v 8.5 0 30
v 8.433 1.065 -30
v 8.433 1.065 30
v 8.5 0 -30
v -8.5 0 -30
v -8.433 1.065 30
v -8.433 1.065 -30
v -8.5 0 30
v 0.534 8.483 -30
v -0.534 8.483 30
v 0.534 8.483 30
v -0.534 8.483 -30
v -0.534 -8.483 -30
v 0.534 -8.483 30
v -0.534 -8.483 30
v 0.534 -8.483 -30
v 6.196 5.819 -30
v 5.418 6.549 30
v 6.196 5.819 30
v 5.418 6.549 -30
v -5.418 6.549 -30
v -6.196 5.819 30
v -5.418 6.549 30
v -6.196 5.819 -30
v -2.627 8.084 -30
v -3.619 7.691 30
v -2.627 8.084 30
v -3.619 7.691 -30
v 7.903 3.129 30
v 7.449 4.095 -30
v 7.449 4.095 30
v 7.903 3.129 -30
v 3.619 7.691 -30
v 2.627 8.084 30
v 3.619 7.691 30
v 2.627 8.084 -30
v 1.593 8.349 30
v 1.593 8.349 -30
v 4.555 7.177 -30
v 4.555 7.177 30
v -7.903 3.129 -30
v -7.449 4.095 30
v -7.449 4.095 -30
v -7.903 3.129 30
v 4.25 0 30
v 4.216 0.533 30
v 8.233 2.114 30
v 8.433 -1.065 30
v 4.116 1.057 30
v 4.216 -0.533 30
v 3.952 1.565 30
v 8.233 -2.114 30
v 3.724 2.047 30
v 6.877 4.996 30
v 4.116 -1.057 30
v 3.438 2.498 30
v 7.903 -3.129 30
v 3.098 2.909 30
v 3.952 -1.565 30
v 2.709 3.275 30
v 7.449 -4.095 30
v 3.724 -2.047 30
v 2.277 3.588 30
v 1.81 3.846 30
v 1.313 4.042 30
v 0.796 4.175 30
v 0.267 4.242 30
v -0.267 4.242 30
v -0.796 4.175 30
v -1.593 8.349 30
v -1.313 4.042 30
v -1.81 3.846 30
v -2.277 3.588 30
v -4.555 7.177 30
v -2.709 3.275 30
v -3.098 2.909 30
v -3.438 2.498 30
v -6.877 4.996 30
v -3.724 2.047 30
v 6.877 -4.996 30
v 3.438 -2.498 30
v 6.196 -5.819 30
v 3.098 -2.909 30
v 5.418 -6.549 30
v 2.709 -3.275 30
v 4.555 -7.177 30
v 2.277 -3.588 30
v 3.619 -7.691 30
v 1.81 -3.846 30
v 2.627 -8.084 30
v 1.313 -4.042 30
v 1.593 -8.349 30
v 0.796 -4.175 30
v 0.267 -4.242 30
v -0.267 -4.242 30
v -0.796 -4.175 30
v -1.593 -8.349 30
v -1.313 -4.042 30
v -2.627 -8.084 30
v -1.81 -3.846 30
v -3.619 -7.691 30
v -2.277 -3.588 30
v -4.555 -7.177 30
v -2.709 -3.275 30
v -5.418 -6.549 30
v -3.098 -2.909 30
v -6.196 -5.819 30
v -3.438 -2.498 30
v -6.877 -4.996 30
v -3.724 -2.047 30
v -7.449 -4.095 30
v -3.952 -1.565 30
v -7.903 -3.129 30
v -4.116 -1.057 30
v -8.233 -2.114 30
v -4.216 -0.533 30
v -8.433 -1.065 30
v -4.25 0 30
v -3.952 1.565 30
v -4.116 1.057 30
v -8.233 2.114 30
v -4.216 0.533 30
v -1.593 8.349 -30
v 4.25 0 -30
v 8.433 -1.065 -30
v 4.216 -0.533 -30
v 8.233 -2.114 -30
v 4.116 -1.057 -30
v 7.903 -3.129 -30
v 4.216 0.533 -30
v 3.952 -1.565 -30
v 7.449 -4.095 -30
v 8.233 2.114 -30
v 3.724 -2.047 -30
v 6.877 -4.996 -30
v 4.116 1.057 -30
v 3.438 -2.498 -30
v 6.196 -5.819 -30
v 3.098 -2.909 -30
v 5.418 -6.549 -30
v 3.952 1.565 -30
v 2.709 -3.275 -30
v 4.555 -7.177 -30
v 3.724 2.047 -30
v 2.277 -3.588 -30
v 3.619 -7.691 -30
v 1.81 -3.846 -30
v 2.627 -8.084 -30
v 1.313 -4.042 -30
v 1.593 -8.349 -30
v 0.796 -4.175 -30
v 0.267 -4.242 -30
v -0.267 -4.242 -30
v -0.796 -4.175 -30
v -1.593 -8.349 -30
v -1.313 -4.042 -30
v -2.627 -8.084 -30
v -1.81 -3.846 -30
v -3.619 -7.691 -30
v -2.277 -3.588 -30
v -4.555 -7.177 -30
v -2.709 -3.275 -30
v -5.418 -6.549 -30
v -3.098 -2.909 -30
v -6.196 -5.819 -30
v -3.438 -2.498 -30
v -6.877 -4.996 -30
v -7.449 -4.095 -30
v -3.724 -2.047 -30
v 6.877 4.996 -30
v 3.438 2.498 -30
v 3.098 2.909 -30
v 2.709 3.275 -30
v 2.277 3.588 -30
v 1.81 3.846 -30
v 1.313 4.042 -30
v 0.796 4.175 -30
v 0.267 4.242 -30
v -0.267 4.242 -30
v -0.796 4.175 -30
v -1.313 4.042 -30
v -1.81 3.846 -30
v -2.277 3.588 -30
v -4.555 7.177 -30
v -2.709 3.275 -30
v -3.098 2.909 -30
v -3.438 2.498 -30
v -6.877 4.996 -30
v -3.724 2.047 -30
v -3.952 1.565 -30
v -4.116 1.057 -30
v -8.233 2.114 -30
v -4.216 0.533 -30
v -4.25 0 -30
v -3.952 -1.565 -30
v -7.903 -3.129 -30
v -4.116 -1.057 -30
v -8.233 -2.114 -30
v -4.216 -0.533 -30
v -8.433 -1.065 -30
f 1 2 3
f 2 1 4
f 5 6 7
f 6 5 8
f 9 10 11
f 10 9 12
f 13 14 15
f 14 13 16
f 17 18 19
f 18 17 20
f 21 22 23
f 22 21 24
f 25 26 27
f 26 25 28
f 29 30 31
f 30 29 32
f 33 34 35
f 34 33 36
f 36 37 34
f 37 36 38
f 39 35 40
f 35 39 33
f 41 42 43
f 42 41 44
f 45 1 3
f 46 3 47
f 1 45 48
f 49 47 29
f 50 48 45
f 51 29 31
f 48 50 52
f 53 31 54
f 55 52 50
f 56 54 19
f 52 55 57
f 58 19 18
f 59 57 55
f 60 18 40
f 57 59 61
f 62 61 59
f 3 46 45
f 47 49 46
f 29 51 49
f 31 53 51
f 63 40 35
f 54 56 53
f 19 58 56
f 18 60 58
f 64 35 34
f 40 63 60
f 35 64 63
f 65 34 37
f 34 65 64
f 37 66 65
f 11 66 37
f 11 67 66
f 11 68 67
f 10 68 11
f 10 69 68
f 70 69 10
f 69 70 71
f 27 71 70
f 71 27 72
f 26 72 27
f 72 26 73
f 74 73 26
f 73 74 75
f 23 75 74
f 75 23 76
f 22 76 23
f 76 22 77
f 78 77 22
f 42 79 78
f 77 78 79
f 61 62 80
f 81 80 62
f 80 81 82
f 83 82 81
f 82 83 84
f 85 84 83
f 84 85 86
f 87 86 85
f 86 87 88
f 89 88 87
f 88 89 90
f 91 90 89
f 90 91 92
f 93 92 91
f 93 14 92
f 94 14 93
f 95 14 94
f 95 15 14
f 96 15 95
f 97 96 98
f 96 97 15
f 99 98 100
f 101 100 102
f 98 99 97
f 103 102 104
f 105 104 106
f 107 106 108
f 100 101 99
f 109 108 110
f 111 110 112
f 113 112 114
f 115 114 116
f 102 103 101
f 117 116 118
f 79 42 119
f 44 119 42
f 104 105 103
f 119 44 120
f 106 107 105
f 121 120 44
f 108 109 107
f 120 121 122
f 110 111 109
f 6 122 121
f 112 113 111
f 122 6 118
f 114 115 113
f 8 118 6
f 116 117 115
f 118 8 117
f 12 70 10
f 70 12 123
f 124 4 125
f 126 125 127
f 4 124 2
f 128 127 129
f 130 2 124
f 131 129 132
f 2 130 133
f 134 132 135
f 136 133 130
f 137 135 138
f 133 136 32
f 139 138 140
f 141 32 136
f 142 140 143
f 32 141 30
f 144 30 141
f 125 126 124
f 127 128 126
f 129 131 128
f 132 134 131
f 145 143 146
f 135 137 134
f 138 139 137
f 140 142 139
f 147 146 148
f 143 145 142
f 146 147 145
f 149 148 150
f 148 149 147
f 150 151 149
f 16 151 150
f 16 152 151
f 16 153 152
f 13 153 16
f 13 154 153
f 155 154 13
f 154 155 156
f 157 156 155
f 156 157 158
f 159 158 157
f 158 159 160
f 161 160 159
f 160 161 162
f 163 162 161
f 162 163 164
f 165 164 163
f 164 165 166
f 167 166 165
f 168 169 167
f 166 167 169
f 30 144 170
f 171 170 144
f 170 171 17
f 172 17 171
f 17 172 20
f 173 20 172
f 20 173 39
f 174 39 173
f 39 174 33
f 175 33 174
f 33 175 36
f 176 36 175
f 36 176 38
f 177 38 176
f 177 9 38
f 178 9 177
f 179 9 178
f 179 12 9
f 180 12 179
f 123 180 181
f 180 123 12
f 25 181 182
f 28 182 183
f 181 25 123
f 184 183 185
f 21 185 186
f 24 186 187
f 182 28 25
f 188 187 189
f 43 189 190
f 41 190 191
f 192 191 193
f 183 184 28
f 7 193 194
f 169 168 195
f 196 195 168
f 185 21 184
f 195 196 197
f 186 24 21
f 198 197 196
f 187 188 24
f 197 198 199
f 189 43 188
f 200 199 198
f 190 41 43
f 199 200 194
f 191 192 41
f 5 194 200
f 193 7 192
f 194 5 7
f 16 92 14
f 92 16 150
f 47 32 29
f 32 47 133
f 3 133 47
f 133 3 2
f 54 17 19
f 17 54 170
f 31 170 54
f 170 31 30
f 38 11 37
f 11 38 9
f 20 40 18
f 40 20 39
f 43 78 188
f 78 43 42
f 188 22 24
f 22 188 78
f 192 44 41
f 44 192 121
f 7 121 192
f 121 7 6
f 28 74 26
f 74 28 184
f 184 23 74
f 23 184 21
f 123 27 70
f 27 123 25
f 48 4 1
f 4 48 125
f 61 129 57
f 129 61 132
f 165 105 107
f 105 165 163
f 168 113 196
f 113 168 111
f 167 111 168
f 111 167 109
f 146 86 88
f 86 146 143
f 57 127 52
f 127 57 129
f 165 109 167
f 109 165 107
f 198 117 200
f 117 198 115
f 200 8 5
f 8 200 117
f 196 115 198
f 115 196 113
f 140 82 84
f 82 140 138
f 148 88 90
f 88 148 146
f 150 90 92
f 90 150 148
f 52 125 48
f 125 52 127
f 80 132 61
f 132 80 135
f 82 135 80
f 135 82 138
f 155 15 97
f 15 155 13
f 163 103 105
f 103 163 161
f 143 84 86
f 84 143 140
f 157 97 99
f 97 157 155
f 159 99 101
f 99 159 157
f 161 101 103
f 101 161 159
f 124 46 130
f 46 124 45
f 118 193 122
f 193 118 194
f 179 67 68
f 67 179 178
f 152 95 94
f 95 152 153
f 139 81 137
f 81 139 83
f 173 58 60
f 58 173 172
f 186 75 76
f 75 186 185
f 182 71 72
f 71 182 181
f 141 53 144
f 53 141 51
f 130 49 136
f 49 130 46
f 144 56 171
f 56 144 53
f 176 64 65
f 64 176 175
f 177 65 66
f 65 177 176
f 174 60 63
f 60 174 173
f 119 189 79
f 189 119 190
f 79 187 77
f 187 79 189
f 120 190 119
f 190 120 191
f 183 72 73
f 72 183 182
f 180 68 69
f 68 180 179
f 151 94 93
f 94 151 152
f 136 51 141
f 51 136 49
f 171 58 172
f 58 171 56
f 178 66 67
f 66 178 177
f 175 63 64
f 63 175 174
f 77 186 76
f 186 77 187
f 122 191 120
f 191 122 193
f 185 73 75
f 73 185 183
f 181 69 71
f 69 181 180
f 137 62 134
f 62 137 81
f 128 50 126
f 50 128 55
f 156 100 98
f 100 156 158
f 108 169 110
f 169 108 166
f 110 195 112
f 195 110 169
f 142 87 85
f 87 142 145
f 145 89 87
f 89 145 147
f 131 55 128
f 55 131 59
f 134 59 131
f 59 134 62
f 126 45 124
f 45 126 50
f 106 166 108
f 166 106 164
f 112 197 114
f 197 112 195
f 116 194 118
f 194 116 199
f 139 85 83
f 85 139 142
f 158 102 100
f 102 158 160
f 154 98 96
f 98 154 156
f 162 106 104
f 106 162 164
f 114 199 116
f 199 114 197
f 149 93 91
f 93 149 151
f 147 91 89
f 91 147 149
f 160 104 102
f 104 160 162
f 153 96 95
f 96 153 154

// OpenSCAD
$fn = 50;


difference() {
	union() {
		translate(v = [0, 0, -30.0000000000]) {
			cylinder(h = 60, r = 8.5000000000);
		}
	}
	union() {
		translate(v = [0, 0, -100.0000000000]) {
			cylinder(h = 200, r = 4.2500000000);
		}
	}
}
